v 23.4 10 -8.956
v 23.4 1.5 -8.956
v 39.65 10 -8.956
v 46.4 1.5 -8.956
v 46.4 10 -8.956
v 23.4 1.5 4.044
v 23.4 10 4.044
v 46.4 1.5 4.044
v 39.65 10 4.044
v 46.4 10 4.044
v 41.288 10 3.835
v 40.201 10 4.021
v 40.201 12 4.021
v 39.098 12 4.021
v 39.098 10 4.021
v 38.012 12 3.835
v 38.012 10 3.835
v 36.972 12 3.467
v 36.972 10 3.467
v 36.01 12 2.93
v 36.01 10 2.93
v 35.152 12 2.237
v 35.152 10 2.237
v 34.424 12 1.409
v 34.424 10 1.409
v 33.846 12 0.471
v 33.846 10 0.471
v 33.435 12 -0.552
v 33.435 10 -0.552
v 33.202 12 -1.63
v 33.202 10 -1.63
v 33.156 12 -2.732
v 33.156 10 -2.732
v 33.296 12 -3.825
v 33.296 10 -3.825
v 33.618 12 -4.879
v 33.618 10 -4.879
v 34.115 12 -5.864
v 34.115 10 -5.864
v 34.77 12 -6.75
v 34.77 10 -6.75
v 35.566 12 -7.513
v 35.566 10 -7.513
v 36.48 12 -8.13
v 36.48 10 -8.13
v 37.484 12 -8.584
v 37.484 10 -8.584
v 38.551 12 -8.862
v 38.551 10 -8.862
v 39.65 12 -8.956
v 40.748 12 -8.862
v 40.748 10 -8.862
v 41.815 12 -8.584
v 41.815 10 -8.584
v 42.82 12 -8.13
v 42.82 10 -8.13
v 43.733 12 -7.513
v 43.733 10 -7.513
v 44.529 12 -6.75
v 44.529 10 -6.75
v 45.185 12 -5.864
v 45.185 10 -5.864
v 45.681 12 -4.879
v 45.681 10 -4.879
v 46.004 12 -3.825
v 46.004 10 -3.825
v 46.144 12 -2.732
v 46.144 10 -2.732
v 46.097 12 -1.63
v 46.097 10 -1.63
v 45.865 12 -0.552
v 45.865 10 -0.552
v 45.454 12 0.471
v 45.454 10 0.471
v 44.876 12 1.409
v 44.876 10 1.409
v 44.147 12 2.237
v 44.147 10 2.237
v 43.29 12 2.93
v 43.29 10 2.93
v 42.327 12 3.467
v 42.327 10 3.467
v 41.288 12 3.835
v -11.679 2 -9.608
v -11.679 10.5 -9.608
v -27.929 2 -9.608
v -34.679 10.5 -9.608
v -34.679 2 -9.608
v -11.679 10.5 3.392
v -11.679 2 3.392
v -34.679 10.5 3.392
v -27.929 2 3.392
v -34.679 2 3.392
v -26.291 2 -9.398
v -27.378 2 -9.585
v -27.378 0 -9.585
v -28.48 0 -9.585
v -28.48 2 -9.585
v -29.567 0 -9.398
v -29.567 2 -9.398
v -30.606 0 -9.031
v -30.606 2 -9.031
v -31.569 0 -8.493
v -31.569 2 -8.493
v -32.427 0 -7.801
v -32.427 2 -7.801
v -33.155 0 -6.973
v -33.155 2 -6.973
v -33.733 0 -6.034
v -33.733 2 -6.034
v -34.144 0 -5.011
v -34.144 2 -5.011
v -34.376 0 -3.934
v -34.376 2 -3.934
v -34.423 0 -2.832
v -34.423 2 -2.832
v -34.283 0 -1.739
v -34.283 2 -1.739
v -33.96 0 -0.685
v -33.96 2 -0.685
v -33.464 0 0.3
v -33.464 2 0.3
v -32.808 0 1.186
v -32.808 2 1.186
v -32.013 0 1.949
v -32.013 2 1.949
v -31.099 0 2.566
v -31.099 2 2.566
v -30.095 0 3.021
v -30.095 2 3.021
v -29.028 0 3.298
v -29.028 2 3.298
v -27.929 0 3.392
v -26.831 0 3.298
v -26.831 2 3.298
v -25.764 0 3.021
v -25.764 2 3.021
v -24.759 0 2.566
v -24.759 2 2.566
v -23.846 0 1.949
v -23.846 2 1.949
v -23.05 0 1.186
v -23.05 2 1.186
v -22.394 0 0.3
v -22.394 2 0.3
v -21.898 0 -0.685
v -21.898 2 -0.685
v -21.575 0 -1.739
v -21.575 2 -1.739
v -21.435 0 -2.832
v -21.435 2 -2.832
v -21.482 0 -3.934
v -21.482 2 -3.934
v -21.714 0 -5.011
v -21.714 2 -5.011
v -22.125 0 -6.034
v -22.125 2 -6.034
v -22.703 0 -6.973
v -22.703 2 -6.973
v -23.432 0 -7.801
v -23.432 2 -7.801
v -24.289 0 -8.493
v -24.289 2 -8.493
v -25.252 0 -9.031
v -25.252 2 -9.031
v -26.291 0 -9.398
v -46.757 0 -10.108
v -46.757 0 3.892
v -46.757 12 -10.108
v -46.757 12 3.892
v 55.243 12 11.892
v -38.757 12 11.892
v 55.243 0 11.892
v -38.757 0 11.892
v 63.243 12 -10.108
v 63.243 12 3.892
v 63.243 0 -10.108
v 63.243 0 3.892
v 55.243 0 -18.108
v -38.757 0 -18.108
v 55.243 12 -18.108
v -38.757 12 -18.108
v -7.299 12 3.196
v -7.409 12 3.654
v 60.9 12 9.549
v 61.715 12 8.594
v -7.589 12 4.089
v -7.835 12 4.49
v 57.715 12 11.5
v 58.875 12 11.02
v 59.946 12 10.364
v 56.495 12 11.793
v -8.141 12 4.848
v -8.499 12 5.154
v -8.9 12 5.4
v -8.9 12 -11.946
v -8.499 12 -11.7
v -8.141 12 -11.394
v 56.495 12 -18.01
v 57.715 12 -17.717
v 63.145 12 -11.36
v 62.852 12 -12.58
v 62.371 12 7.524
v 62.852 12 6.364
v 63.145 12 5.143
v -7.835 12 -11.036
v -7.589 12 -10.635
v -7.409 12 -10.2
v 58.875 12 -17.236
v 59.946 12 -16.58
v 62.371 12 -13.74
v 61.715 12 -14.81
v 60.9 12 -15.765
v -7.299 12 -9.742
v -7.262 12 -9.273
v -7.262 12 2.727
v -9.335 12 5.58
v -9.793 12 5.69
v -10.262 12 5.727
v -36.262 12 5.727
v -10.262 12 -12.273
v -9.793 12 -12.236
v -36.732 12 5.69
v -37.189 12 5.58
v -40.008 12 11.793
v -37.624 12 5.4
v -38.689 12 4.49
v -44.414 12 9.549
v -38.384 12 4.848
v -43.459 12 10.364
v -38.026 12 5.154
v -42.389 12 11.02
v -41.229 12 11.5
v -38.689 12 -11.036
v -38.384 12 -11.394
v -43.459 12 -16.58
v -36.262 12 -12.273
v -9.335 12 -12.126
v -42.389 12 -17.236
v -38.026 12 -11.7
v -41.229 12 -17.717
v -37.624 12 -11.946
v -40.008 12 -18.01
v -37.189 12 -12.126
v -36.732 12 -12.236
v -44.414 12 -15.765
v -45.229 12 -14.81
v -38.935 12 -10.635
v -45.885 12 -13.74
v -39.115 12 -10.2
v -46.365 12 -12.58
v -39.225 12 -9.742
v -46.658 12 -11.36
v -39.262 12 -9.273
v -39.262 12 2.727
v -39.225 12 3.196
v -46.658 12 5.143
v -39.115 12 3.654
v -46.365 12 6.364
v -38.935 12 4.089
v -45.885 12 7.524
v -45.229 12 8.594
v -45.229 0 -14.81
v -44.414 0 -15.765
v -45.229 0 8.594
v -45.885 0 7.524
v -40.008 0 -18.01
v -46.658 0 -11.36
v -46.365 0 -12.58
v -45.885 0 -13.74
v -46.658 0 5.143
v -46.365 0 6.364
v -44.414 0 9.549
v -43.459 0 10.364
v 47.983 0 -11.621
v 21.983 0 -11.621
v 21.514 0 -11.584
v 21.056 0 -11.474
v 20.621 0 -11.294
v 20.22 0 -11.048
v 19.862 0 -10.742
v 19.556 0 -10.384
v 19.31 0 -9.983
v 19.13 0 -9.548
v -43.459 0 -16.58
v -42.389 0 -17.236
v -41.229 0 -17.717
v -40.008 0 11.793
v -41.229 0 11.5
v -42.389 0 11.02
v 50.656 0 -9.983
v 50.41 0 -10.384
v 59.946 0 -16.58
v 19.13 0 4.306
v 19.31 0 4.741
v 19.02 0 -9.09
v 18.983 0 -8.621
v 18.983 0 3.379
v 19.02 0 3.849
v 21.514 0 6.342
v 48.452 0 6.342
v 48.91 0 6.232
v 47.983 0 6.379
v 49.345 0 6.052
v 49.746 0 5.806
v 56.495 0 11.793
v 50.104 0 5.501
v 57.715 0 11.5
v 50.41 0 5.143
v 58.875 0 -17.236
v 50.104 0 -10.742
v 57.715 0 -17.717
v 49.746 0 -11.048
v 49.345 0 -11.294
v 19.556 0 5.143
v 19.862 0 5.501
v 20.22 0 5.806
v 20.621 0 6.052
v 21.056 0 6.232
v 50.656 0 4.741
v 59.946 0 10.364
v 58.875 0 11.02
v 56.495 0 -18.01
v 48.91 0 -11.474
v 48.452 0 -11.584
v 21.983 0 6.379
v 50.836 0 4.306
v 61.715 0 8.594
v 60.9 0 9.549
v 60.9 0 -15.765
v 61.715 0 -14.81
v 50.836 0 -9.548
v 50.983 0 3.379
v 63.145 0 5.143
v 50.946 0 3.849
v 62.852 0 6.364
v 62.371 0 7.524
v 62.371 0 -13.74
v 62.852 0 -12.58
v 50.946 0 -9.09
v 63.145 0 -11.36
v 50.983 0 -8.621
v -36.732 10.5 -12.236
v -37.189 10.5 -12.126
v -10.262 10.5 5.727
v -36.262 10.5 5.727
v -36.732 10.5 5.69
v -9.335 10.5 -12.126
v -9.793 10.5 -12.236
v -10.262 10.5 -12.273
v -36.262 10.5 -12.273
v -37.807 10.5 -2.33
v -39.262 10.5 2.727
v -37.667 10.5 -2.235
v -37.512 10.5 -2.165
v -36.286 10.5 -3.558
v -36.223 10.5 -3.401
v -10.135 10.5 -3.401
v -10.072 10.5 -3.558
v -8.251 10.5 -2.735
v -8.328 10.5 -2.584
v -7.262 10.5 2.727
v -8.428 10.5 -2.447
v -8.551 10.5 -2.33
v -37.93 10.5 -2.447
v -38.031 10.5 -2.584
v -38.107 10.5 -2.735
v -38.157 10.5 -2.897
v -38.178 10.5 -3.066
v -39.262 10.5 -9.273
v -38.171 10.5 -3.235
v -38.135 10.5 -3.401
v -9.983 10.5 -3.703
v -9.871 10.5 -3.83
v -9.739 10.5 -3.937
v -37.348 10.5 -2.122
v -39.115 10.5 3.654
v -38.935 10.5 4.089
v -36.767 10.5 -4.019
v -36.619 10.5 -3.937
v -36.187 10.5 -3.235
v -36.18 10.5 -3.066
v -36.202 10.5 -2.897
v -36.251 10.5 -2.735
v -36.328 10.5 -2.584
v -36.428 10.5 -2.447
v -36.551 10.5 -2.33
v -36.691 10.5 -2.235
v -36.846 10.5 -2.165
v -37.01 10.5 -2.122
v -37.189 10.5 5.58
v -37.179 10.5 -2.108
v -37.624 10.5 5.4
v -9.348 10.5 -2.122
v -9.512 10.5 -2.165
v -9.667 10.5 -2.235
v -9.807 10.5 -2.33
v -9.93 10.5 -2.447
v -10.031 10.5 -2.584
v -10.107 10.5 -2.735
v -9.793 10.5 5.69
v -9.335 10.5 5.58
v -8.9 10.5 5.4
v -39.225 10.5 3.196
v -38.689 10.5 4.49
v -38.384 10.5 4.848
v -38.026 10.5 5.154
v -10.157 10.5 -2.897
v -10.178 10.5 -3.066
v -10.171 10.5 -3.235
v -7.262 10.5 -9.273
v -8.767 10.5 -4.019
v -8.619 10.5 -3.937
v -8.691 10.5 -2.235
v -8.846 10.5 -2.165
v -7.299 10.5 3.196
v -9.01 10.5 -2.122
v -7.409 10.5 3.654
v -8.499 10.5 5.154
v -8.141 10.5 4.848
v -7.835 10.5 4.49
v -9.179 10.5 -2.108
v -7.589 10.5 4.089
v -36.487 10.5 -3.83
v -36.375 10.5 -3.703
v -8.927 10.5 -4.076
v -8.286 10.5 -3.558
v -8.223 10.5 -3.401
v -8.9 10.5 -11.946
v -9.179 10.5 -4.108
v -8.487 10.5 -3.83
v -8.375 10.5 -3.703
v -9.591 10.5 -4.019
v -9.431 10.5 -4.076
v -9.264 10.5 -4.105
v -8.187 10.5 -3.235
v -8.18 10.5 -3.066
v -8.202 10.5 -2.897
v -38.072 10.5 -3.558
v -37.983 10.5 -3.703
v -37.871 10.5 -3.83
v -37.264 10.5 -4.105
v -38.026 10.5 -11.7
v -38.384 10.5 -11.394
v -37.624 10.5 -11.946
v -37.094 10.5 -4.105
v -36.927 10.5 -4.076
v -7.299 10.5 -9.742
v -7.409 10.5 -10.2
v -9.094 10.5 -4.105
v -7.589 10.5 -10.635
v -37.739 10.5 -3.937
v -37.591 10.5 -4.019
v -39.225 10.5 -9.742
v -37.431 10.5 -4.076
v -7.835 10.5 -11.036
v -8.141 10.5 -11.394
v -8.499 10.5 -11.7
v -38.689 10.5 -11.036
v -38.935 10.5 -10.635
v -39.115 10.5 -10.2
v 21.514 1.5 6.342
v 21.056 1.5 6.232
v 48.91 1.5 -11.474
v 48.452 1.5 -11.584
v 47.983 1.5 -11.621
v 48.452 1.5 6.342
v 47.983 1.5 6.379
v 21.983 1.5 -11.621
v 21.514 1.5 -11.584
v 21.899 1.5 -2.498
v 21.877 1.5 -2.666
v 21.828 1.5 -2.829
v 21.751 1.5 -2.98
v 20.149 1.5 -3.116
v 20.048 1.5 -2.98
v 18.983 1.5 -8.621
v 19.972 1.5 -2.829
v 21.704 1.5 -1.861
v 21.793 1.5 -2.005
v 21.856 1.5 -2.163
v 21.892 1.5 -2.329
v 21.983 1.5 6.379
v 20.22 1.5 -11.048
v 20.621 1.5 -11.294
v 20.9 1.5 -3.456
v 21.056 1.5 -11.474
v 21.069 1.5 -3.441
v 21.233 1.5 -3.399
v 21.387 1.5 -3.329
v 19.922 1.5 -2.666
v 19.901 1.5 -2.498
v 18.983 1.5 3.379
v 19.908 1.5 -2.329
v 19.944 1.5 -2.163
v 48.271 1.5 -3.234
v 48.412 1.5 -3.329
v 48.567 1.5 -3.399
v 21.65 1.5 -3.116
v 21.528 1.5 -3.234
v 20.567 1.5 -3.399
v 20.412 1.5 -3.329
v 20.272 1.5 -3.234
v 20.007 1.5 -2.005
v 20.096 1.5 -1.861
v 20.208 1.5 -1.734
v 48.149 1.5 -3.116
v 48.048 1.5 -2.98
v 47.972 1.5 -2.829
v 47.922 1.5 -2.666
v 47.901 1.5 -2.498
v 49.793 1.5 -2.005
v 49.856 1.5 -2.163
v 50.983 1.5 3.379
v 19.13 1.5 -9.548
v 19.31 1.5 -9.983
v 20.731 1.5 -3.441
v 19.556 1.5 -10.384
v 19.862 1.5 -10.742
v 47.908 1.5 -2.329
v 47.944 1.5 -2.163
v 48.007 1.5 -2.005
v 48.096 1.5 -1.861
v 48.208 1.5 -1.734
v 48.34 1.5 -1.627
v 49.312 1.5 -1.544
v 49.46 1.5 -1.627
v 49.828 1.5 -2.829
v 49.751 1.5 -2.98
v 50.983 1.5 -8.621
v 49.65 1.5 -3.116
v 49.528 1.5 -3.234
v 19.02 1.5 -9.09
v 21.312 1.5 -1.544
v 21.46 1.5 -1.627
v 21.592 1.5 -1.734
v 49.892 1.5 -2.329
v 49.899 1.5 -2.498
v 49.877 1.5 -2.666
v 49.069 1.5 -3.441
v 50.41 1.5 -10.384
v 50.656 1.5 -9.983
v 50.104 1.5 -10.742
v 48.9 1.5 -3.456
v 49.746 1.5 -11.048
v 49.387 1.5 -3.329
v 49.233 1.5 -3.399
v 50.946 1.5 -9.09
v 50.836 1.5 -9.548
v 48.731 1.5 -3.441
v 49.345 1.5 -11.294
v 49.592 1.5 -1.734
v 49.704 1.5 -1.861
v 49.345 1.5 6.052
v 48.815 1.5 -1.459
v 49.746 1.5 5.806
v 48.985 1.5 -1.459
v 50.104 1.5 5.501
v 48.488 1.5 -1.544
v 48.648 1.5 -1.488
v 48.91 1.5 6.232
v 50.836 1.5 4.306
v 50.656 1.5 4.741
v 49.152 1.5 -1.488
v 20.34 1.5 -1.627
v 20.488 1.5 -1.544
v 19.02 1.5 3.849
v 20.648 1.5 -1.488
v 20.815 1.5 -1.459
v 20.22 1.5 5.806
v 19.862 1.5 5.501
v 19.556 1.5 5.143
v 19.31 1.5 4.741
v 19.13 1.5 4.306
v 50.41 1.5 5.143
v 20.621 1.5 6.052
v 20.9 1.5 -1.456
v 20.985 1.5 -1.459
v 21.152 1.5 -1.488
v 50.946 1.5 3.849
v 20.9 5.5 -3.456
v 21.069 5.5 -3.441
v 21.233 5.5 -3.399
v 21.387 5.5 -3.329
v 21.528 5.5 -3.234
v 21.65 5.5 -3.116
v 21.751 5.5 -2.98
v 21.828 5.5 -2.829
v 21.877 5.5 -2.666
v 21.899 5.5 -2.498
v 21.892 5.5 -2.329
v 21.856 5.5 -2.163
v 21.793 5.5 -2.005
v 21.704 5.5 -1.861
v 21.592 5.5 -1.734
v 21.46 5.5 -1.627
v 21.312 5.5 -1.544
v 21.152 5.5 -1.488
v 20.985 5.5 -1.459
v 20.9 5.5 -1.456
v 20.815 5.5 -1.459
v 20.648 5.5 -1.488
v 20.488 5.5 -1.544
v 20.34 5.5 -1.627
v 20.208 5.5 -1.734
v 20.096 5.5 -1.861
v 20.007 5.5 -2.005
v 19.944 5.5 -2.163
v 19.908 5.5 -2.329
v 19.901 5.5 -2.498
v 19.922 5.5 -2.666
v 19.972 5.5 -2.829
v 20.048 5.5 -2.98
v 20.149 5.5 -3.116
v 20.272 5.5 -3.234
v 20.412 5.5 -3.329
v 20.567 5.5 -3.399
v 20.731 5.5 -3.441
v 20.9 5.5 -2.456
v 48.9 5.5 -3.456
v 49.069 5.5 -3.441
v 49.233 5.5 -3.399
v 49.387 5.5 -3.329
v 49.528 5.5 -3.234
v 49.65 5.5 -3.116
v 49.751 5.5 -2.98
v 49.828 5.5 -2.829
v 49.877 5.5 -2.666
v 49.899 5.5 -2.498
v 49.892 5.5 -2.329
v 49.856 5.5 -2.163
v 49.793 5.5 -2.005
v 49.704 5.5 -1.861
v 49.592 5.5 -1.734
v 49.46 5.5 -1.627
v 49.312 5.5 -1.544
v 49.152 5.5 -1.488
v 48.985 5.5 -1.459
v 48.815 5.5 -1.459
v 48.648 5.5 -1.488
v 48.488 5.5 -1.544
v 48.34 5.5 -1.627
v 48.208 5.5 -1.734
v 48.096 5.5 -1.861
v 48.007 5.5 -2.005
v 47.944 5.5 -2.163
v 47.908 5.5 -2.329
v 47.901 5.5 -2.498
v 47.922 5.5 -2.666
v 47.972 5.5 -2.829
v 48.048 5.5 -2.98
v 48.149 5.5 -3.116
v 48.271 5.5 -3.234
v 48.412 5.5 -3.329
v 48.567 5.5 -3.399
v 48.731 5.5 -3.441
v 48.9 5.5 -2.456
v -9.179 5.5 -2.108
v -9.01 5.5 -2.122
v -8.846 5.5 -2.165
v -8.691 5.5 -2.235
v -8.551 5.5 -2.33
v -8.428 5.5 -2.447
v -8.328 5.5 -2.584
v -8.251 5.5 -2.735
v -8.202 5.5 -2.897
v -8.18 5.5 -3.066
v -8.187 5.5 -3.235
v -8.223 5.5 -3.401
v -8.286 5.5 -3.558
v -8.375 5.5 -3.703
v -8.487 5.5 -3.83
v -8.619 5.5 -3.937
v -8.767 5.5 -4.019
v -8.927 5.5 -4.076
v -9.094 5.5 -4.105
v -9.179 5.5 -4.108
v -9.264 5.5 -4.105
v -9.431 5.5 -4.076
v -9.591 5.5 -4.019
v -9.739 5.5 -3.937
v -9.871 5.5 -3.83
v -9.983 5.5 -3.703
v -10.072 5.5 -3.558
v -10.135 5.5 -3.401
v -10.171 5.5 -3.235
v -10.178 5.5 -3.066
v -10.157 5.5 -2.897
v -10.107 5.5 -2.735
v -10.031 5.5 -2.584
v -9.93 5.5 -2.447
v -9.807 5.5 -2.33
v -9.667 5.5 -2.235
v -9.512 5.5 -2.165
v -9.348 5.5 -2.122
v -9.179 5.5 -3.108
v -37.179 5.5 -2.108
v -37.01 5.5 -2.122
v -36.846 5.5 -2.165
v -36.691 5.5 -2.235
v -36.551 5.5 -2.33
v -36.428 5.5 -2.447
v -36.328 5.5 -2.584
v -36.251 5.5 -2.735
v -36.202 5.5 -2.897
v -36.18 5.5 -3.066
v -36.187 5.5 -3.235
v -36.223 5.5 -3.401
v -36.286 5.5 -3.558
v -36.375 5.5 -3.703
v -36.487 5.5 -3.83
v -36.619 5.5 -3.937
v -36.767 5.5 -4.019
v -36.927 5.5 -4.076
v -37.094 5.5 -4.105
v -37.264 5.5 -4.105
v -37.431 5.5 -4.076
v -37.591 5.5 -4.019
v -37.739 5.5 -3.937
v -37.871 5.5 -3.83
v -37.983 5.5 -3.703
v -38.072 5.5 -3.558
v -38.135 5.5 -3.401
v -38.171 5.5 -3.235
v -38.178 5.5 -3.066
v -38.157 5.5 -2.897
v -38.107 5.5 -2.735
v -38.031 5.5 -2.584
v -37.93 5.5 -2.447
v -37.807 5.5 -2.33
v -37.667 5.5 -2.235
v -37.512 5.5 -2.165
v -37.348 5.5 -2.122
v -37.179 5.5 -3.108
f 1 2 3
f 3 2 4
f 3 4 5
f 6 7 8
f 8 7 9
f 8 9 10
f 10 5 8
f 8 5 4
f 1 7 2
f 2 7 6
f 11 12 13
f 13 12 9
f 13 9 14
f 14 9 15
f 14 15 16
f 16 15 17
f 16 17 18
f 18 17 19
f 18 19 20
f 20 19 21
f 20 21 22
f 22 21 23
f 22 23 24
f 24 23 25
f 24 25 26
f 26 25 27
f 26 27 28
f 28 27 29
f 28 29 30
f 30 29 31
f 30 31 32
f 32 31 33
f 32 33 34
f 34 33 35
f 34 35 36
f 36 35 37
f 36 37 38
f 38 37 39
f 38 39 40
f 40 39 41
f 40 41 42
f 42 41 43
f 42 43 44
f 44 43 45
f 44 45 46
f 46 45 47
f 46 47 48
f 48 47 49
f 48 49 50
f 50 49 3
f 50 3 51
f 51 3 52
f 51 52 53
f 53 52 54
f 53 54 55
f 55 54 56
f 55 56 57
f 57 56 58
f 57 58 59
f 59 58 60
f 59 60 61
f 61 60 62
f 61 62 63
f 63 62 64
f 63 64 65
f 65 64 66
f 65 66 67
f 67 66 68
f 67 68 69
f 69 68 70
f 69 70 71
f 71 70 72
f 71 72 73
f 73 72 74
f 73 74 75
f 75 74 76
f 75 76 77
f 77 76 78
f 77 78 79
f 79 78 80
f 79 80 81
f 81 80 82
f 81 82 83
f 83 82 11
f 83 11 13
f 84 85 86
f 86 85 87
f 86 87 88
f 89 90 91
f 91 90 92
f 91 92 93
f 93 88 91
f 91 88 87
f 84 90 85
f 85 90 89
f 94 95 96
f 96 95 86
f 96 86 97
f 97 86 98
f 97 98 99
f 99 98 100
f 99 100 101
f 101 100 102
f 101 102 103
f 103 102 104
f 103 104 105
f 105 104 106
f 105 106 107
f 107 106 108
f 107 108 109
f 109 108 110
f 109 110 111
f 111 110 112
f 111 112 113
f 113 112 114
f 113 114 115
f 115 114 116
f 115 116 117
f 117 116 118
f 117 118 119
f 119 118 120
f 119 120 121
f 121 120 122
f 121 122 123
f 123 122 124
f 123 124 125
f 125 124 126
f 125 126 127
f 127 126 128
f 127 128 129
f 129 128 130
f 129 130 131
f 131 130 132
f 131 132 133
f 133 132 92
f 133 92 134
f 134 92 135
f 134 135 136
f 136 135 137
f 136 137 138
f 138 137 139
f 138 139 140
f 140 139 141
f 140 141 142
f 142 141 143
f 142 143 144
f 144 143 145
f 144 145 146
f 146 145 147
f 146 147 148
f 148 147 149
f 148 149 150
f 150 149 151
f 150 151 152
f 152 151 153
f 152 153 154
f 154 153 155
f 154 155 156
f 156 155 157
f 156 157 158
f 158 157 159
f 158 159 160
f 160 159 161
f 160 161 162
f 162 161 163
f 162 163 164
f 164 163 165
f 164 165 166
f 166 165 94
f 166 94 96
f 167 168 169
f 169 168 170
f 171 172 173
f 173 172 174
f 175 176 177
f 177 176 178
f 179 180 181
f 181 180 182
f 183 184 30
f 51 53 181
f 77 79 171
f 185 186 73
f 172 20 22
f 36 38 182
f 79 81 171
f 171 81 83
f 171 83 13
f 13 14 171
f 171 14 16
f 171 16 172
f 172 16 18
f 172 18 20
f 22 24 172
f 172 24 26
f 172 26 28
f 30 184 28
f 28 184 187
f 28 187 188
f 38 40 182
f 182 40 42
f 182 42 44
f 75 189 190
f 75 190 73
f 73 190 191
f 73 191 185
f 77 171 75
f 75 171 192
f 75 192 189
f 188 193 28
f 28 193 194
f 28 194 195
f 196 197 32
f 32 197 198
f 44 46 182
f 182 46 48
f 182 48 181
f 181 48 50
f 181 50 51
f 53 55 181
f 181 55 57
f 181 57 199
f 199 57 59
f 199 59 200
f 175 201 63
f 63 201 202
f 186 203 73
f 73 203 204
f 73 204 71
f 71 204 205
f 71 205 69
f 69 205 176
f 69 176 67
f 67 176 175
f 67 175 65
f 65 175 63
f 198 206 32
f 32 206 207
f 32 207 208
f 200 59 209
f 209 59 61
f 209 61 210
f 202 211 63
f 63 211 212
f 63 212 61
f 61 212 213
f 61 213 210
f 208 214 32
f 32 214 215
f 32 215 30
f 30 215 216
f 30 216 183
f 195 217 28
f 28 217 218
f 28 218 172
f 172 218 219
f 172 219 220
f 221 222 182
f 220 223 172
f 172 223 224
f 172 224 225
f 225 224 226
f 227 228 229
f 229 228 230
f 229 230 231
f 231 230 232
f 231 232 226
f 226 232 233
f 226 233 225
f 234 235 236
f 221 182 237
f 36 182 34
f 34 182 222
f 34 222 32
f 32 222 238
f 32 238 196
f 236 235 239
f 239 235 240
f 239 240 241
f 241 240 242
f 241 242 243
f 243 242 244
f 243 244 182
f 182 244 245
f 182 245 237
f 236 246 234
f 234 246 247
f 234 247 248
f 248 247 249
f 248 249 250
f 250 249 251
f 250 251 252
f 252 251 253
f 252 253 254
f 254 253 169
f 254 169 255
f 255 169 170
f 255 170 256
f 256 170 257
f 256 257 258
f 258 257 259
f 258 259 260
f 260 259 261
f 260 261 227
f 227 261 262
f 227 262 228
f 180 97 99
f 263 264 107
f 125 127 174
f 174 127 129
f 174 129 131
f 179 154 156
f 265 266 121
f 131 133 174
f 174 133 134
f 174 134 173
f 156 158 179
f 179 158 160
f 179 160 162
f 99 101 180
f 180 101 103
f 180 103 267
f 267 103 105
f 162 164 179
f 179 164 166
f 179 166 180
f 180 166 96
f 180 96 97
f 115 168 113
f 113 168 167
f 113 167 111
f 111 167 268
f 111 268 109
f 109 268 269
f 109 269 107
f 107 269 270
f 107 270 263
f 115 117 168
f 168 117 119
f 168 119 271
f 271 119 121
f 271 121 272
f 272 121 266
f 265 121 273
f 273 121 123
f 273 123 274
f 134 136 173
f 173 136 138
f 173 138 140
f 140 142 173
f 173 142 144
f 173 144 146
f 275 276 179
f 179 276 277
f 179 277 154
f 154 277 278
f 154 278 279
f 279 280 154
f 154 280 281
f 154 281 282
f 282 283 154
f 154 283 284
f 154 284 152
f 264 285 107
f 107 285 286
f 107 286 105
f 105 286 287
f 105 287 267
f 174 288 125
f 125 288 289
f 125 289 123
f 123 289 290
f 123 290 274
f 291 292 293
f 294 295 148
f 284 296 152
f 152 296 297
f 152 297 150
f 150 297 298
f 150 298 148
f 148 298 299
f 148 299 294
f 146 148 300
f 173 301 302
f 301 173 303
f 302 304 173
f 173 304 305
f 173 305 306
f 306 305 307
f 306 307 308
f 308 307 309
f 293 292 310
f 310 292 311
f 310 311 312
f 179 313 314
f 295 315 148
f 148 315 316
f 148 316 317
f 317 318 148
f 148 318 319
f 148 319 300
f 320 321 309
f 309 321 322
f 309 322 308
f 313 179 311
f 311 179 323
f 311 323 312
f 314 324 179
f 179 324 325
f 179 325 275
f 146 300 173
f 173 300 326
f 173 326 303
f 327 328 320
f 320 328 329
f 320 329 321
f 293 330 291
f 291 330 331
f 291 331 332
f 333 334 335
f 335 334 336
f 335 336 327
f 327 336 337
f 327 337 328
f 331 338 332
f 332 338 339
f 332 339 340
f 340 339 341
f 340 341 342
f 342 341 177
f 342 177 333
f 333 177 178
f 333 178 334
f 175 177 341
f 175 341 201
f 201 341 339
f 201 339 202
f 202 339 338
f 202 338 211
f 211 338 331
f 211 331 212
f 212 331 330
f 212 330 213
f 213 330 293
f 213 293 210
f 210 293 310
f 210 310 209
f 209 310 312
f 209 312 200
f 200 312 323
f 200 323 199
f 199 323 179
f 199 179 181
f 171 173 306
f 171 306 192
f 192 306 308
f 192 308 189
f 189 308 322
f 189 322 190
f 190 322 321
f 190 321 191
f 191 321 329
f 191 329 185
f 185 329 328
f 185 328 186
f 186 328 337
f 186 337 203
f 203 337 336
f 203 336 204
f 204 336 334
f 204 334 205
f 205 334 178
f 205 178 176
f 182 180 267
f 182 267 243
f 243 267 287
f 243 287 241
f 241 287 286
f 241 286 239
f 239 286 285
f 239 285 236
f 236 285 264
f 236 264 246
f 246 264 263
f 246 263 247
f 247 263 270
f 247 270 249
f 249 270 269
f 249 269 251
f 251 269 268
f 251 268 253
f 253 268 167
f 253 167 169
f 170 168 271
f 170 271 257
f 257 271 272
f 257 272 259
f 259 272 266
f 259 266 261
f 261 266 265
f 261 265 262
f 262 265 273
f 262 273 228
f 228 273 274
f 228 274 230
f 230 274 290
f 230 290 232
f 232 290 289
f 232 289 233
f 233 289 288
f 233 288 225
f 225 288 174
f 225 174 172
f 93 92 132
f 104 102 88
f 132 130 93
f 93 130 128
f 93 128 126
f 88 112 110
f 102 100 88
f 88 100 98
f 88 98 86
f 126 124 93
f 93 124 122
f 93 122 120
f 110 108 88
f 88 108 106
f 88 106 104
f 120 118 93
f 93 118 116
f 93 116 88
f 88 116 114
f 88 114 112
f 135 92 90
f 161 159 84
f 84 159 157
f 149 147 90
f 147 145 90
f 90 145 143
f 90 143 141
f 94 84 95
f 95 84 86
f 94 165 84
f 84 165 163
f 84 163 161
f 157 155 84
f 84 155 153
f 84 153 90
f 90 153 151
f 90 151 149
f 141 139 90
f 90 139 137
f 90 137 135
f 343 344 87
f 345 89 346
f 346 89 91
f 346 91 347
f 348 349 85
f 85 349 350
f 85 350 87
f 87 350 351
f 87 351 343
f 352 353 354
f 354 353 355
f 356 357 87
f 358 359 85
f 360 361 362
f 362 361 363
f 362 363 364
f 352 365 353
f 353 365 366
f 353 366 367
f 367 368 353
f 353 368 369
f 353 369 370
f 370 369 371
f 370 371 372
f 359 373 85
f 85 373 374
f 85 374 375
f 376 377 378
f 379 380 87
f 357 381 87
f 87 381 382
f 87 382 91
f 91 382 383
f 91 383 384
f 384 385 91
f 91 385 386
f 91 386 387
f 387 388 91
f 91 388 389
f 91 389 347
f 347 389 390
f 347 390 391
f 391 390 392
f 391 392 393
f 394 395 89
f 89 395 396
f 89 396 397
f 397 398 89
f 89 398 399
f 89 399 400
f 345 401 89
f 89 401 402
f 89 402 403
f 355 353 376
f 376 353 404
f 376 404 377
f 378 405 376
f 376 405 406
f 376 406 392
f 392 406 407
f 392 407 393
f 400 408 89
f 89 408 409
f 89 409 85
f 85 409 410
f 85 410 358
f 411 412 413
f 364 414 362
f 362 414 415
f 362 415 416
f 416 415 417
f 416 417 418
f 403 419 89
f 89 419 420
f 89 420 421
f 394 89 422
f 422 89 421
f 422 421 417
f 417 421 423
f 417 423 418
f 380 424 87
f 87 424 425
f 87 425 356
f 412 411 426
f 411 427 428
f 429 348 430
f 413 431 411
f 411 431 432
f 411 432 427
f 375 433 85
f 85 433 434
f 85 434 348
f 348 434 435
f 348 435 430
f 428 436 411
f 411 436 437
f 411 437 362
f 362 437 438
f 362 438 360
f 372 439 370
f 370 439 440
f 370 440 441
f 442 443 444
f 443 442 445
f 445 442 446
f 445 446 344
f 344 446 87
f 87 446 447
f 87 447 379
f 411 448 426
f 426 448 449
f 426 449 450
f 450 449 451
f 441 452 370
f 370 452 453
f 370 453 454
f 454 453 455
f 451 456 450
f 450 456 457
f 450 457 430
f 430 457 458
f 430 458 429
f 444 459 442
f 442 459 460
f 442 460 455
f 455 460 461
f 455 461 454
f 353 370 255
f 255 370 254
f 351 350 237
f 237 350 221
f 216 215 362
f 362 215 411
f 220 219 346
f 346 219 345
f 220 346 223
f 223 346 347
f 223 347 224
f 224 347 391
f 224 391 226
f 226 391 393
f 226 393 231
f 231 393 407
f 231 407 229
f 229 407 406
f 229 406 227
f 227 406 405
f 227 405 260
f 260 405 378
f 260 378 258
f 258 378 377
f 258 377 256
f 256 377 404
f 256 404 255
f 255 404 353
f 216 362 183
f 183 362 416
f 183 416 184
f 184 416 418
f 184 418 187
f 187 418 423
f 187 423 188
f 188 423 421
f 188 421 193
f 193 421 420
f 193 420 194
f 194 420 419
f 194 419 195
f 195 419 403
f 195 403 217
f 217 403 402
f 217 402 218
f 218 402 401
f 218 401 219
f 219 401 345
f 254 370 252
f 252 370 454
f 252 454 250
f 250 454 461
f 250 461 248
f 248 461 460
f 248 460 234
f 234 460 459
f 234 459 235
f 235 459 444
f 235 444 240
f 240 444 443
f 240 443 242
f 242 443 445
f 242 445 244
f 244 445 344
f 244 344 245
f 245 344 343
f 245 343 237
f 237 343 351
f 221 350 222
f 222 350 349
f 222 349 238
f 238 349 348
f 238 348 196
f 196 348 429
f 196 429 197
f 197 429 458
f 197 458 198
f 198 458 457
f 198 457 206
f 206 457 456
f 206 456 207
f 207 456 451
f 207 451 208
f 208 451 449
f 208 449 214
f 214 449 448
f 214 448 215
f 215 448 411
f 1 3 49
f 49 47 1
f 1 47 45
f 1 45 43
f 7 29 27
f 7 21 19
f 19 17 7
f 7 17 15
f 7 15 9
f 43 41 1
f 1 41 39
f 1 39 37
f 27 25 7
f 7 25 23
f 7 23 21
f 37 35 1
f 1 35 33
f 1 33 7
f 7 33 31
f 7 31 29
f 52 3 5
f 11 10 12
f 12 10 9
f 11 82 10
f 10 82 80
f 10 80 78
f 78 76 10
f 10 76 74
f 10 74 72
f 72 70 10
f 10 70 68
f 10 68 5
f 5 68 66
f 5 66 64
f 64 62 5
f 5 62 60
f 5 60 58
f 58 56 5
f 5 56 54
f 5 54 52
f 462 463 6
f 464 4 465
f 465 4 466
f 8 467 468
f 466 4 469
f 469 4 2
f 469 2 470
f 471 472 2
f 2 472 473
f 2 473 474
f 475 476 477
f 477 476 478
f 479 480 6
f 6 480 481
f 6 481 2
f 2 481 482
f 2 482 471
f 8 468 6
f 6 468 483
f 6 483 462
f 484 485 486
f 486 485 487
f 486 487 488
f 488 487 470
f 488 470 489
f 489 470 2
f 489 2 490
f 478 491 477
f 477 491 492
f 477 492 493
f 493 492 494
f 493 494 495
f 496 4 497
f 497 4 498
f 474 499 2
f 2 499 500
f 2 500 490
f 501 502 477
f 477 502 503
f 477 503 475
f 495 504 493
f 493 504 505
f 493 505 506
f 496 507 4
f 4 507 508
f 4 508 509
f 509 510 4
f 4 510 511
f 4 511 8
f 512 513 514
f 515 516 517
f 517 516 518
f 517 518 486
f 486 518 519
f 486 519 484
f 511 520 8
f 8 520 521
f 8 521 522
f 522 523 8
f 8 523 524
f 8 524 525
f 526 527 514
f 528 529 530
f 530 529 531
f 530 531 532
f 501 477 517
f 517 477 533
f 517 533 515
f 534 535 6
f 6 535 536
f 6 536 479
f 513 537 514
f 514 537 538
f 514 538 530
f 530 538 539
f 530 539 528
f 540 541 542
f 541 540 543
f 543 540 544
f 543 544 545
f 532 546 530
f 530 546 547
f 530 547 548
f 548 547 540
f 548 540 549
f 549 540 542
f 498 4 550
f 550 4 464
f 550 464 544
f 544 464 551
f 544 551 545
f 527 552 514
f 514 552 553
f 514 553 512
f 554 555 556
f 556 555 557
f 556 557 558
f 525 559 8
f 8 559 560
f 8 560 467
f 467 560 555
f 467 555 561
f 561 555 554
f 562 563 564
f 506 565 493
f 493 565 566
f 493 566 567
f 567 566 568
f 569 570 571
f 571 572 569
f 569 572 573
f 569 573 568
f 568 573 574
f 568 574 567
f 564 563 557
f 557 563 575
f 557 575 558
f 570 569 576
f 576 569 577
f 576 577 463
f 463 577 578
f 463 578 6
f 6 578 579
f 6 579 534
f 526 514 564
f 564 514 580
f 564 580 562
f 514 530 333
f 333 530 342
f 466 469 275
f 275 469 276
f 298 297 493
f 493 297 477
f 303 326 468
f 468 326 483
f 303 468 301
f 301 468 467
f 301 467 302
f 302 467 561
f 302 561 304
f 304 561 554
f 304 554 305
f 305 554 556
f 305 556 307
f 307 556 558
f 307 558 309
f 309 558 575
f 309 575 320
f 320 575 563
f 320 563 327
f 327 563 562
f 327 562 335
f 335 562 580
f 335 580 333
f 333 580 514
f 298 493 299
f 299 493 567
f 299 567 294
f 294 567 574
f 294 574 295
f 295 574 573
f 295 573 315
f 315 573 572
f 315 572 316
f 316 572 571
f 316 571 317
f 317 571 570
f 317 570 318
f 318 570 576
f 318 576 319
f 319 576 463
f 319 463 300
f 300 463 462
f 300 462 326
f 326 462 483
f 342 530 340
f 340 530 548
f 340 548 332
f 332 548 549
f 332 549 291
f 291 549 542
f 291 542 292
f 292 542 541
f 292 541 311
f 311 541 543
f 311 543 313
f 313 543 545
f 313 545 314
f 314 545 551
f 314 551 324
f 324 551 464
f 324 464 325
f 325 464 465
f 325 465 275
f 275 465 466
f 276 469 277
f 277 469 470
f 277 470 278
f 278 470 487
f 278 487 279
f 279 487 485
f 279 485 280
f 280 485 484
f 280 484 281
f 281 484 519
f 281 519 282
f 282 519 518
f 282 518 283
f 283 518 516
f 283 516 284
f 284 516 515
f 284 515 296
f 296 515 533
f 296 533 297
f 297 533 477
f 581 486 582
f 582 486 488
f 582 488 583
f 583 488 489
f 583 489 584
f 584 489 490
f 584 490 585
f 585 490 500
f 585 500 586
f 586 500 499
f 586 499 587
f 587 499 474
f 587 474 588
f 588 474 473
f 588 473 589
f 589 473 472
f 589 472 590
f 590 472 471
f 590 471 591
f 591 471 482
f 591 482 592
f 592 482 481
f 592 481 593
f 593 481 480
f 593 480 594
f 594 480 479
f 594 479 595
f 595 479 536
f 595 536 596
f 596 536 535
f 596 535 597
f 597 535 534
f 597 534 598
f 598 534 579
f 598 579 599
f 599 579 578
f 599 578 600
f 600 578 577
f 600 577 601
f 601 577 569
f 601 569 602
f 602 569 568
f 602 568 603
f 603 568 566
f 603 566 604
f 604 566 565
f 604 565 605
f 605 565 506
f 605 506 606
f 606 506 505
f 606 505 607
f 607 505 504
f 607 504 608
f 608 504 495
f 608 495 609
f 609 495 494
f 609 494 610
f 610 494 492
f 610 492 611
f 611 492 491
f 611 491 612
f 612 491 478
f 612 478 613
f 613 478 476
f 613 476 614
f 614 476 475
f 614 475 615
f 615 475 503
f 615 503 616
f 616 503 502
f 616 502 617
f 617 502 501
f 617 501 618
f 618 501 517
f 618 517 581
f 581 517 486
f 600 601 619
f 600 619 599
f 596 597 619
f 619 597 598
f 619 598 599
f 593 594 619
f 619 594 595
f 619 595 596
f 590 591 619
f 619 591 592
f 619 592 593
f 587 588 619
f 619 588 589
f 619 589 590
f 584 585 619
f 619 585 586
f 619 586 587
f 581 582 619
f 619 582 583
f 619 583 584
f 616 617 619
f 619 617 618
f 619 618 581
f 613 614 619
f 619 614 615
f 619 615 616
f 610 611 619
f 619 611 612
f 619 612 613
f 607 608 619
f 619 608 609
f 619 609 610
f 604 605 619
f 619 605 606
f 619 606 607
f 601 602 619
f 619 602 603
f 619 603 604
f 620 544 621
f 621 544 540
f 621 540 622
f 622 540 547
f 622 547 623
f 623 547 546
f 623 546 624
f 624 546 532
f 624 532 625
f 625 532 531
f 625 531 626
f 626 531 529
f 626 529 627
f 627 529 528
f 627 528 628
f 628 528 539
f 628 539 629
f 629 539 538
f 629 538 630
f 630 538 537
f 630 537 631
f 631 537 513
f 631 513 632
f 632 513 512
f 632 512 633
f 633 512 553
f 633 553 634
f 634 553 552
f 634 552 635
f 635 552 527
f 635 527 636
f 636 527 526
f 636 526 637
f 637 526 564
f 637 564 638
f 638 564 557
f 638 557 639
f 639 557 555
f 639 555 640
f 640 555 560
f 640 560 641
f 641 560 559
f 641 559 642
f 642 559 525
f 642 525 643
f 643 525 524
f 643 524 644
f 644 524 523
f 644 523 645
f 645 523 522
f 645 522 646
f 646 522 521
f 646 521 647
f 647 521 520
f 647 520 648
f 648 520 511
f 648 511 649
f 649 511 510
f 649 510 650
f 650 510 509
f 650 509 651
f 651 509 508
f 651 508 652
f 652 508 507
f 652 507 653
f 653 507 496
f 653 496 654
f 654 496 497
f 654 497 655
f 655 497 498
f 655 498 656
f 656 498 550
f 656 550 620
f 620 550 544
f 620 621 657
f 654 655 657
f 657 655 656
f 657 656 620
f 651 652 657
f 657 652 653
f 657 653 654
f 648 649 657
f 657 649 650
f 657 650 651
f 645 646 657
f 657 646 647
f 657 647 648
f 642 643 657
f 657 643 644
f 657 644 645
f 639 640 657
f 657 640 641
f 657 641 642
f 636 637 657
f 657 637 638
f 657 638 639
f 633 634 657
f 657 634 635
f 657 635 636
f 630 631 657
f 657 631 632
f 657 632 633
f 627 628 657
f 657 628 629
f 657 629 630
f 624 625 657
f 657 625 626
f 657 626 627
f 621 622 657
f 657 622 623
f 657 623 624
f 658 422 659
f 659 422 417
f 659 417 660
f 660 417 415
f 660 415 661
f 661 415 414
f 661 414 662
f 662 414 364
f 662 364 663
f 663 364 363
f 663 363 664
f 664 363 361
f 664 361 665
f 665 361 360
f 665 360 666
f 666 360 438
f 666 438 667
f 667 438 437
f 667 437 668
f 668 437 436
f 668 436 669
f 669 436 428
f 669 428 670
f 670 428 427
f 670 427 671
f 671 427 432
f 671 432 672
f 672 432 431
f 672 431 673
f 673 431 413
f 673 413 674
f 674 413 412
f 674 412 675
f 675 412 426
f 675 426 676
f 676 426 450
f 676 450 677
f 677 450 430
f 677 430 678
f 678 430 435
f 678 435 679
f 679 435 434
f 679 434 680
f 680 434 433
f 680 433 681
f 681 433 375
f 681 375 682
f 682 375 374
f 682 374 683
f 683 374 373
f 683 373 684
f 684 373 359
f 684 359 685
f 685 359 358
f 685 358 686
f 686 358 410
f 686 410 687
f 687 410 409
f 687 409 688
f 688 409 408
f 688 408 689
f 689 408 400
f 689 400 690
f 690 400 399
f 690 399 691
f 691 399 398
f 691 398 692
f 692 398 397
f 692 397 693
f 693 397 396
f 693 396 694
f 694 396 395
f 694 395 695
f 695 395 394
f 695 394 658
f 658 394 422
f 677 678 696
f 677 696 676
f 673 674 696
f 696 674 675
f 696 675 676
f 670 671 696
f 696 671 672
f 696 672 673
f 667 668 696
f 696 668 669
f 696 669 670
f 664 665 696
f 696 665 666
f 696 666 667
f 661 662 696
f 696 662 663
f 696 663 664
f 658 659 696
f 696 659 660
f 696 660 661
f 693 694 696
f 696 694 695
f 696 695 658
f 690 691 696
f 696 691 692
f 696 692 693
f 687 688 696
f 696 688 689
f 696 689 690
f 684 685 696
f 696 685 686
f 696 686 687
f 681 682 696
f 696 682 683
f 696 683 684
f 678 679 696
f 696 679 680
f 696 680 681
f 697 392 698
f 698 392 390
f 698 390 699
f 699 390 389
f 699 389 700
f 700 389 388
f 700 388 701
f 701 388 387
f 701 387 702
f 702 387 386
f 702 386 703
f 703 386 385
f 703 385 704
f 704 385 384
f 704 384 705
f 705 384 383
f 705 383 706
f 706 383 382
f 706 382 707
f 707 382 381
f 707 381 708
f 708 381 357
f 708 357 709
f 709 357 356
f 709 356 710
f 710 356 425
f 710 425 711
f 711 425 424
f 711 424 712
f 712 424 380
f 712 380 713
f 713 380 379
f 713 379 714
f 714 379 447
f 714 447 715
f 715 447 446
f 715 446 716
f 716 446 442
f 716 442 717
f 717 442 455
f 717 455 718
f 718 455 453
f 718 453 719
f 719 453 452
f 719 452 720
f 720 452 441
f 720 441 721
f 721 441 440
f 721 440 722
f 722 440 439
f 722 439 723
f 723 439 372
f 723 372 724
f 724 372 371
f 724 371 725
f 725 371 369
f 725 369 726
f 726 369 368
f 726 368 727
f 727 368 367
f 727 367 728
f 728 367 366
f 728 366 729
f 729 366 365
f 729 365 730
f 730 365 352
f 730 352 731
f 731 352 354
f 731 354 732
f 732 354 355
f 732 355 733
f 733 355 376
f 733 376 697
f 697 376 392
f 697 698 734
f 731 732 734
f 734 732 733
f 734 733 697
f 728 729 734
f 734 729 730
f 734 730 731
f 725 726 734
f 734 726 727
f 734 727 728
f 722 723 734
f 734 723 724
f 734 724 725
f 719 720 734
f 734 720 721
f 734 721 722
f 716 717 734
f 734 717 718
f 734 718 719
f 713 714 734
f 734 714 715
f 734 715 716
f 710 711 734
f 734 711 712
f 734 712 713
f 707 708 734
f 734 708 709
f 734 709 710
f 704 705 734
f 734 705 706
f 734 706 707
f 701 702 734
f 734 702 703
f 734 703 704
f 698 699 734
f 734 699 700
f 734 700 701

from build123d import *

# Parameters (mm, degrees)
SKETCH1_W           = 110
SKETCH1_H           = 30
BOSS_EXTRUDE1_DEPTH = 12
FILLET2_R           = 8
SKETCH4_R           = 6.5
CUT_EXTRUDE1_DEPTH  = 67.870108383
SKETCH3_W           = 23
SKETCH3_H           = 13
CUT_EXTRUDE2_DEPTH  = 10
SKETCH5_W           = 32
SKETCH5_H           = 18
CUT_EXTRUDE3_DEPTH  = 1.5
FILLET4_R           = 3
SKETCH8_R           = 6.5
CUT_EXTRUDE4_DEPTH  = 63.574437799
SKETCH10_W          = 23
SKETCH10_H          = 13
CUT_EXTRUDE5_DEPTH  = 10
SKETCH12_W          = 32
SKETCH12_H          = 18
CUT_EXTRUDE6_DEPTH  = 1.5
FILLET5_R           = 3
SKETCH14_R          = 1
CUT_EXTRUDE7_DEPTH  = 4
SKETCH6_R           = 1
CUT_EXTRUDE8_DEPTH  = 5


with BuildPart() as part:
    # Sketch1 → Boss-Extrude1 (new body)
    with BuildSketch(Plane(origin=(0, 0, 0), x_dir=(1, 0, 0), z_dir=(0, 1, 0))):
        with Locations((8.243243243, 3.108108108)):
            Rectangle(SKETCH1_W, SKETCH1_H)
    extrude(amount=BOSS_EXTRUDE1_DEPTH)

    # Fillet2
    fillet2_edges = [part.edges().sort_by_distance(p)[0] for p in [
        (-46.756756757, 6, -18.108108108),
        (63.243243243, 6, -18.108108108),
        (63.243243243, 6, 11.891891892),
        (-46.756756757, 6, 11.891891892),
    ]]
    fillet(fillet2_edges, radius=FILLET2_R)

    # Sketch4 → Cut-Extrude1 (cut, through all)
    with BuildSketch(Plane(origin=(0, 12, 0), x_dir=(1, 0, 0), z_dir=(0, 1, 0))):
        with Locations(Location((-27.929103529, 3.108108108, 0), (0, 0, 270))):
            Circle(SKETCH4_R)
    extrude(amount=-CUT_EXTRUDE1_DEPTH, mode=Mode.SUBTRACT)

    # Sketch3 → Cut-Extrude2 (cut)
    with BuildSketch(Plane(origin=(0, 12, 0), x_dir=(1, 0, 0), z_dir=(0, 1, 0))):
        with Locations((-23.179103529, 3.108108108)):
            Rectangle(SKETCH3_W, SKETCH3_H)
    extrude(amount=-CUT_EXTRUDE2_DEPTH, mode=Mode.SUBTRACT)

    # Sketch5 → Cut-Extrude3 (cut)
    with BuildSketch(Plane(origin=(0, 12, 0), x_dir=(1, 0, 0), z_dir=(0, 1, 0))):
        with Locations((-23.262280593, 3.273133416)):
            Rectangle(SKETCH5_W, SKETCH5_H)
    extrude(amount=-CUT_EXTRUDE3_DEPTH, mode=Mode.SUBTRACT)

    # Fillet4
    fillet4_edges = [part.edges().sort_by_distance(p)[0] for p in [
        (-39.262280593, 11.25, 5.726866584),
        (-39.262280593, 11.25, -12.273133416),
        (-7.262280593, 11.25, -12.273133416),
        (-7.262280593, 11.25, 5.726866584),
    ]]
    fillet(fillet4_edges, radius=FILLET4_R)

    # Sketch8 → Cut-Extrude4 (cut, through all)
    with BuildSketch(Plane(origin=(11.720616789, 0, 0.652410252), x_dir=(-1, 0, 0), z_dir=(0, -1, 0))):
        with Locations(Location((-27.929103529, 3.108108108, 0), (0, 0, 90))):
            Circle(SKETCH8_R)
    extrude(amount=-CUT_EXTRUDE4_DEPTH, mode=Mode.SUBTRACT)

    # Sketch10 → Cut-Extrude5 (cut)
    with BuildSketch(Plane(origin=(11.720616789, 0, 0.652410252), x_dir=(-1, 0, 0), z_dir=(0, -1, 0))):
        with Locations((-23.179103529, 3.108108108)):
            Rectangle(SKETCH10_W, SKETCH10_H)
    extrude(amount=-CUT_EXTRUDE5_DEPTH, mode=Mode.SUBTRACT)

    # Sketch12 → Cut-Extrude6 (cut)
    with BuildSketch(Plane(origin=(11.720616789, 0, 0.652410252), x_dir=(-1, 0, 0), z_dir=(0, -1, 0))):
        with Locations((-23.262280593, 3.273133416)):
            Rectangle(SKETCH12_W, SKETCH12_H)
    extrude(amount=-CUT_EXTRUDE6_DEPTH, mode=Mode.SUBTRACT)

    # Fillet5
    fillet5_edges = [part.edges().sort_by_distance(p)[0] for p in [
        (50.982897382, 0.75, 6.379276835),
        (50.982897382, 0.75, -11.620723165),
        (18.982897382, 0.75, -11.620723165),
        (18.982897382, 0.75, 6.379276835),
    ]]
    fillet(fillet5_edges, radius=FILLET5_R)

    # Sketch14 → Cut-Extrude7 (cut)
    with BuildSketch(Plane(origin=(11.720616789, 1.5, 0.652410252), x_dir=(-1, 0, 0), z_dir=(0, -1, 0))):
        with Locations(Location((-37.179103529, 3.108108108, 0), (0, 0, 90))):
            Circle(SKETCH14_R)
        with Locations(Location((-9.179103529, 3.108108108, 0), (0, 0, 270))):
            Circle(SKETCH14_R)
    extrude(amount=-CUT_EXTRUDE7_DEPTH, mode=Mode.SUBTRACT)

    # Sketch6 → Cut-Extrude8 (cut)
    with BuildSketch(Plane(origin=(0, 10.5, 0), x_dir=(1, 0, 0), z_dir=(0, 1, 0))):
        with Locations(Location((-37.179103529, 3.108108108, 0), (0, 0, 270))):
            Circle(SKETCH6_R)
        with Locations(Location((-9.179103529, 3.108108108, 0), (0, 0, 90))):
            Circle(SKETCH6_R)
    extrude(amount=-CUT_EXTRUDE8_DEPTH, mode=Mode.SUBTRACT)


solid = part.part
